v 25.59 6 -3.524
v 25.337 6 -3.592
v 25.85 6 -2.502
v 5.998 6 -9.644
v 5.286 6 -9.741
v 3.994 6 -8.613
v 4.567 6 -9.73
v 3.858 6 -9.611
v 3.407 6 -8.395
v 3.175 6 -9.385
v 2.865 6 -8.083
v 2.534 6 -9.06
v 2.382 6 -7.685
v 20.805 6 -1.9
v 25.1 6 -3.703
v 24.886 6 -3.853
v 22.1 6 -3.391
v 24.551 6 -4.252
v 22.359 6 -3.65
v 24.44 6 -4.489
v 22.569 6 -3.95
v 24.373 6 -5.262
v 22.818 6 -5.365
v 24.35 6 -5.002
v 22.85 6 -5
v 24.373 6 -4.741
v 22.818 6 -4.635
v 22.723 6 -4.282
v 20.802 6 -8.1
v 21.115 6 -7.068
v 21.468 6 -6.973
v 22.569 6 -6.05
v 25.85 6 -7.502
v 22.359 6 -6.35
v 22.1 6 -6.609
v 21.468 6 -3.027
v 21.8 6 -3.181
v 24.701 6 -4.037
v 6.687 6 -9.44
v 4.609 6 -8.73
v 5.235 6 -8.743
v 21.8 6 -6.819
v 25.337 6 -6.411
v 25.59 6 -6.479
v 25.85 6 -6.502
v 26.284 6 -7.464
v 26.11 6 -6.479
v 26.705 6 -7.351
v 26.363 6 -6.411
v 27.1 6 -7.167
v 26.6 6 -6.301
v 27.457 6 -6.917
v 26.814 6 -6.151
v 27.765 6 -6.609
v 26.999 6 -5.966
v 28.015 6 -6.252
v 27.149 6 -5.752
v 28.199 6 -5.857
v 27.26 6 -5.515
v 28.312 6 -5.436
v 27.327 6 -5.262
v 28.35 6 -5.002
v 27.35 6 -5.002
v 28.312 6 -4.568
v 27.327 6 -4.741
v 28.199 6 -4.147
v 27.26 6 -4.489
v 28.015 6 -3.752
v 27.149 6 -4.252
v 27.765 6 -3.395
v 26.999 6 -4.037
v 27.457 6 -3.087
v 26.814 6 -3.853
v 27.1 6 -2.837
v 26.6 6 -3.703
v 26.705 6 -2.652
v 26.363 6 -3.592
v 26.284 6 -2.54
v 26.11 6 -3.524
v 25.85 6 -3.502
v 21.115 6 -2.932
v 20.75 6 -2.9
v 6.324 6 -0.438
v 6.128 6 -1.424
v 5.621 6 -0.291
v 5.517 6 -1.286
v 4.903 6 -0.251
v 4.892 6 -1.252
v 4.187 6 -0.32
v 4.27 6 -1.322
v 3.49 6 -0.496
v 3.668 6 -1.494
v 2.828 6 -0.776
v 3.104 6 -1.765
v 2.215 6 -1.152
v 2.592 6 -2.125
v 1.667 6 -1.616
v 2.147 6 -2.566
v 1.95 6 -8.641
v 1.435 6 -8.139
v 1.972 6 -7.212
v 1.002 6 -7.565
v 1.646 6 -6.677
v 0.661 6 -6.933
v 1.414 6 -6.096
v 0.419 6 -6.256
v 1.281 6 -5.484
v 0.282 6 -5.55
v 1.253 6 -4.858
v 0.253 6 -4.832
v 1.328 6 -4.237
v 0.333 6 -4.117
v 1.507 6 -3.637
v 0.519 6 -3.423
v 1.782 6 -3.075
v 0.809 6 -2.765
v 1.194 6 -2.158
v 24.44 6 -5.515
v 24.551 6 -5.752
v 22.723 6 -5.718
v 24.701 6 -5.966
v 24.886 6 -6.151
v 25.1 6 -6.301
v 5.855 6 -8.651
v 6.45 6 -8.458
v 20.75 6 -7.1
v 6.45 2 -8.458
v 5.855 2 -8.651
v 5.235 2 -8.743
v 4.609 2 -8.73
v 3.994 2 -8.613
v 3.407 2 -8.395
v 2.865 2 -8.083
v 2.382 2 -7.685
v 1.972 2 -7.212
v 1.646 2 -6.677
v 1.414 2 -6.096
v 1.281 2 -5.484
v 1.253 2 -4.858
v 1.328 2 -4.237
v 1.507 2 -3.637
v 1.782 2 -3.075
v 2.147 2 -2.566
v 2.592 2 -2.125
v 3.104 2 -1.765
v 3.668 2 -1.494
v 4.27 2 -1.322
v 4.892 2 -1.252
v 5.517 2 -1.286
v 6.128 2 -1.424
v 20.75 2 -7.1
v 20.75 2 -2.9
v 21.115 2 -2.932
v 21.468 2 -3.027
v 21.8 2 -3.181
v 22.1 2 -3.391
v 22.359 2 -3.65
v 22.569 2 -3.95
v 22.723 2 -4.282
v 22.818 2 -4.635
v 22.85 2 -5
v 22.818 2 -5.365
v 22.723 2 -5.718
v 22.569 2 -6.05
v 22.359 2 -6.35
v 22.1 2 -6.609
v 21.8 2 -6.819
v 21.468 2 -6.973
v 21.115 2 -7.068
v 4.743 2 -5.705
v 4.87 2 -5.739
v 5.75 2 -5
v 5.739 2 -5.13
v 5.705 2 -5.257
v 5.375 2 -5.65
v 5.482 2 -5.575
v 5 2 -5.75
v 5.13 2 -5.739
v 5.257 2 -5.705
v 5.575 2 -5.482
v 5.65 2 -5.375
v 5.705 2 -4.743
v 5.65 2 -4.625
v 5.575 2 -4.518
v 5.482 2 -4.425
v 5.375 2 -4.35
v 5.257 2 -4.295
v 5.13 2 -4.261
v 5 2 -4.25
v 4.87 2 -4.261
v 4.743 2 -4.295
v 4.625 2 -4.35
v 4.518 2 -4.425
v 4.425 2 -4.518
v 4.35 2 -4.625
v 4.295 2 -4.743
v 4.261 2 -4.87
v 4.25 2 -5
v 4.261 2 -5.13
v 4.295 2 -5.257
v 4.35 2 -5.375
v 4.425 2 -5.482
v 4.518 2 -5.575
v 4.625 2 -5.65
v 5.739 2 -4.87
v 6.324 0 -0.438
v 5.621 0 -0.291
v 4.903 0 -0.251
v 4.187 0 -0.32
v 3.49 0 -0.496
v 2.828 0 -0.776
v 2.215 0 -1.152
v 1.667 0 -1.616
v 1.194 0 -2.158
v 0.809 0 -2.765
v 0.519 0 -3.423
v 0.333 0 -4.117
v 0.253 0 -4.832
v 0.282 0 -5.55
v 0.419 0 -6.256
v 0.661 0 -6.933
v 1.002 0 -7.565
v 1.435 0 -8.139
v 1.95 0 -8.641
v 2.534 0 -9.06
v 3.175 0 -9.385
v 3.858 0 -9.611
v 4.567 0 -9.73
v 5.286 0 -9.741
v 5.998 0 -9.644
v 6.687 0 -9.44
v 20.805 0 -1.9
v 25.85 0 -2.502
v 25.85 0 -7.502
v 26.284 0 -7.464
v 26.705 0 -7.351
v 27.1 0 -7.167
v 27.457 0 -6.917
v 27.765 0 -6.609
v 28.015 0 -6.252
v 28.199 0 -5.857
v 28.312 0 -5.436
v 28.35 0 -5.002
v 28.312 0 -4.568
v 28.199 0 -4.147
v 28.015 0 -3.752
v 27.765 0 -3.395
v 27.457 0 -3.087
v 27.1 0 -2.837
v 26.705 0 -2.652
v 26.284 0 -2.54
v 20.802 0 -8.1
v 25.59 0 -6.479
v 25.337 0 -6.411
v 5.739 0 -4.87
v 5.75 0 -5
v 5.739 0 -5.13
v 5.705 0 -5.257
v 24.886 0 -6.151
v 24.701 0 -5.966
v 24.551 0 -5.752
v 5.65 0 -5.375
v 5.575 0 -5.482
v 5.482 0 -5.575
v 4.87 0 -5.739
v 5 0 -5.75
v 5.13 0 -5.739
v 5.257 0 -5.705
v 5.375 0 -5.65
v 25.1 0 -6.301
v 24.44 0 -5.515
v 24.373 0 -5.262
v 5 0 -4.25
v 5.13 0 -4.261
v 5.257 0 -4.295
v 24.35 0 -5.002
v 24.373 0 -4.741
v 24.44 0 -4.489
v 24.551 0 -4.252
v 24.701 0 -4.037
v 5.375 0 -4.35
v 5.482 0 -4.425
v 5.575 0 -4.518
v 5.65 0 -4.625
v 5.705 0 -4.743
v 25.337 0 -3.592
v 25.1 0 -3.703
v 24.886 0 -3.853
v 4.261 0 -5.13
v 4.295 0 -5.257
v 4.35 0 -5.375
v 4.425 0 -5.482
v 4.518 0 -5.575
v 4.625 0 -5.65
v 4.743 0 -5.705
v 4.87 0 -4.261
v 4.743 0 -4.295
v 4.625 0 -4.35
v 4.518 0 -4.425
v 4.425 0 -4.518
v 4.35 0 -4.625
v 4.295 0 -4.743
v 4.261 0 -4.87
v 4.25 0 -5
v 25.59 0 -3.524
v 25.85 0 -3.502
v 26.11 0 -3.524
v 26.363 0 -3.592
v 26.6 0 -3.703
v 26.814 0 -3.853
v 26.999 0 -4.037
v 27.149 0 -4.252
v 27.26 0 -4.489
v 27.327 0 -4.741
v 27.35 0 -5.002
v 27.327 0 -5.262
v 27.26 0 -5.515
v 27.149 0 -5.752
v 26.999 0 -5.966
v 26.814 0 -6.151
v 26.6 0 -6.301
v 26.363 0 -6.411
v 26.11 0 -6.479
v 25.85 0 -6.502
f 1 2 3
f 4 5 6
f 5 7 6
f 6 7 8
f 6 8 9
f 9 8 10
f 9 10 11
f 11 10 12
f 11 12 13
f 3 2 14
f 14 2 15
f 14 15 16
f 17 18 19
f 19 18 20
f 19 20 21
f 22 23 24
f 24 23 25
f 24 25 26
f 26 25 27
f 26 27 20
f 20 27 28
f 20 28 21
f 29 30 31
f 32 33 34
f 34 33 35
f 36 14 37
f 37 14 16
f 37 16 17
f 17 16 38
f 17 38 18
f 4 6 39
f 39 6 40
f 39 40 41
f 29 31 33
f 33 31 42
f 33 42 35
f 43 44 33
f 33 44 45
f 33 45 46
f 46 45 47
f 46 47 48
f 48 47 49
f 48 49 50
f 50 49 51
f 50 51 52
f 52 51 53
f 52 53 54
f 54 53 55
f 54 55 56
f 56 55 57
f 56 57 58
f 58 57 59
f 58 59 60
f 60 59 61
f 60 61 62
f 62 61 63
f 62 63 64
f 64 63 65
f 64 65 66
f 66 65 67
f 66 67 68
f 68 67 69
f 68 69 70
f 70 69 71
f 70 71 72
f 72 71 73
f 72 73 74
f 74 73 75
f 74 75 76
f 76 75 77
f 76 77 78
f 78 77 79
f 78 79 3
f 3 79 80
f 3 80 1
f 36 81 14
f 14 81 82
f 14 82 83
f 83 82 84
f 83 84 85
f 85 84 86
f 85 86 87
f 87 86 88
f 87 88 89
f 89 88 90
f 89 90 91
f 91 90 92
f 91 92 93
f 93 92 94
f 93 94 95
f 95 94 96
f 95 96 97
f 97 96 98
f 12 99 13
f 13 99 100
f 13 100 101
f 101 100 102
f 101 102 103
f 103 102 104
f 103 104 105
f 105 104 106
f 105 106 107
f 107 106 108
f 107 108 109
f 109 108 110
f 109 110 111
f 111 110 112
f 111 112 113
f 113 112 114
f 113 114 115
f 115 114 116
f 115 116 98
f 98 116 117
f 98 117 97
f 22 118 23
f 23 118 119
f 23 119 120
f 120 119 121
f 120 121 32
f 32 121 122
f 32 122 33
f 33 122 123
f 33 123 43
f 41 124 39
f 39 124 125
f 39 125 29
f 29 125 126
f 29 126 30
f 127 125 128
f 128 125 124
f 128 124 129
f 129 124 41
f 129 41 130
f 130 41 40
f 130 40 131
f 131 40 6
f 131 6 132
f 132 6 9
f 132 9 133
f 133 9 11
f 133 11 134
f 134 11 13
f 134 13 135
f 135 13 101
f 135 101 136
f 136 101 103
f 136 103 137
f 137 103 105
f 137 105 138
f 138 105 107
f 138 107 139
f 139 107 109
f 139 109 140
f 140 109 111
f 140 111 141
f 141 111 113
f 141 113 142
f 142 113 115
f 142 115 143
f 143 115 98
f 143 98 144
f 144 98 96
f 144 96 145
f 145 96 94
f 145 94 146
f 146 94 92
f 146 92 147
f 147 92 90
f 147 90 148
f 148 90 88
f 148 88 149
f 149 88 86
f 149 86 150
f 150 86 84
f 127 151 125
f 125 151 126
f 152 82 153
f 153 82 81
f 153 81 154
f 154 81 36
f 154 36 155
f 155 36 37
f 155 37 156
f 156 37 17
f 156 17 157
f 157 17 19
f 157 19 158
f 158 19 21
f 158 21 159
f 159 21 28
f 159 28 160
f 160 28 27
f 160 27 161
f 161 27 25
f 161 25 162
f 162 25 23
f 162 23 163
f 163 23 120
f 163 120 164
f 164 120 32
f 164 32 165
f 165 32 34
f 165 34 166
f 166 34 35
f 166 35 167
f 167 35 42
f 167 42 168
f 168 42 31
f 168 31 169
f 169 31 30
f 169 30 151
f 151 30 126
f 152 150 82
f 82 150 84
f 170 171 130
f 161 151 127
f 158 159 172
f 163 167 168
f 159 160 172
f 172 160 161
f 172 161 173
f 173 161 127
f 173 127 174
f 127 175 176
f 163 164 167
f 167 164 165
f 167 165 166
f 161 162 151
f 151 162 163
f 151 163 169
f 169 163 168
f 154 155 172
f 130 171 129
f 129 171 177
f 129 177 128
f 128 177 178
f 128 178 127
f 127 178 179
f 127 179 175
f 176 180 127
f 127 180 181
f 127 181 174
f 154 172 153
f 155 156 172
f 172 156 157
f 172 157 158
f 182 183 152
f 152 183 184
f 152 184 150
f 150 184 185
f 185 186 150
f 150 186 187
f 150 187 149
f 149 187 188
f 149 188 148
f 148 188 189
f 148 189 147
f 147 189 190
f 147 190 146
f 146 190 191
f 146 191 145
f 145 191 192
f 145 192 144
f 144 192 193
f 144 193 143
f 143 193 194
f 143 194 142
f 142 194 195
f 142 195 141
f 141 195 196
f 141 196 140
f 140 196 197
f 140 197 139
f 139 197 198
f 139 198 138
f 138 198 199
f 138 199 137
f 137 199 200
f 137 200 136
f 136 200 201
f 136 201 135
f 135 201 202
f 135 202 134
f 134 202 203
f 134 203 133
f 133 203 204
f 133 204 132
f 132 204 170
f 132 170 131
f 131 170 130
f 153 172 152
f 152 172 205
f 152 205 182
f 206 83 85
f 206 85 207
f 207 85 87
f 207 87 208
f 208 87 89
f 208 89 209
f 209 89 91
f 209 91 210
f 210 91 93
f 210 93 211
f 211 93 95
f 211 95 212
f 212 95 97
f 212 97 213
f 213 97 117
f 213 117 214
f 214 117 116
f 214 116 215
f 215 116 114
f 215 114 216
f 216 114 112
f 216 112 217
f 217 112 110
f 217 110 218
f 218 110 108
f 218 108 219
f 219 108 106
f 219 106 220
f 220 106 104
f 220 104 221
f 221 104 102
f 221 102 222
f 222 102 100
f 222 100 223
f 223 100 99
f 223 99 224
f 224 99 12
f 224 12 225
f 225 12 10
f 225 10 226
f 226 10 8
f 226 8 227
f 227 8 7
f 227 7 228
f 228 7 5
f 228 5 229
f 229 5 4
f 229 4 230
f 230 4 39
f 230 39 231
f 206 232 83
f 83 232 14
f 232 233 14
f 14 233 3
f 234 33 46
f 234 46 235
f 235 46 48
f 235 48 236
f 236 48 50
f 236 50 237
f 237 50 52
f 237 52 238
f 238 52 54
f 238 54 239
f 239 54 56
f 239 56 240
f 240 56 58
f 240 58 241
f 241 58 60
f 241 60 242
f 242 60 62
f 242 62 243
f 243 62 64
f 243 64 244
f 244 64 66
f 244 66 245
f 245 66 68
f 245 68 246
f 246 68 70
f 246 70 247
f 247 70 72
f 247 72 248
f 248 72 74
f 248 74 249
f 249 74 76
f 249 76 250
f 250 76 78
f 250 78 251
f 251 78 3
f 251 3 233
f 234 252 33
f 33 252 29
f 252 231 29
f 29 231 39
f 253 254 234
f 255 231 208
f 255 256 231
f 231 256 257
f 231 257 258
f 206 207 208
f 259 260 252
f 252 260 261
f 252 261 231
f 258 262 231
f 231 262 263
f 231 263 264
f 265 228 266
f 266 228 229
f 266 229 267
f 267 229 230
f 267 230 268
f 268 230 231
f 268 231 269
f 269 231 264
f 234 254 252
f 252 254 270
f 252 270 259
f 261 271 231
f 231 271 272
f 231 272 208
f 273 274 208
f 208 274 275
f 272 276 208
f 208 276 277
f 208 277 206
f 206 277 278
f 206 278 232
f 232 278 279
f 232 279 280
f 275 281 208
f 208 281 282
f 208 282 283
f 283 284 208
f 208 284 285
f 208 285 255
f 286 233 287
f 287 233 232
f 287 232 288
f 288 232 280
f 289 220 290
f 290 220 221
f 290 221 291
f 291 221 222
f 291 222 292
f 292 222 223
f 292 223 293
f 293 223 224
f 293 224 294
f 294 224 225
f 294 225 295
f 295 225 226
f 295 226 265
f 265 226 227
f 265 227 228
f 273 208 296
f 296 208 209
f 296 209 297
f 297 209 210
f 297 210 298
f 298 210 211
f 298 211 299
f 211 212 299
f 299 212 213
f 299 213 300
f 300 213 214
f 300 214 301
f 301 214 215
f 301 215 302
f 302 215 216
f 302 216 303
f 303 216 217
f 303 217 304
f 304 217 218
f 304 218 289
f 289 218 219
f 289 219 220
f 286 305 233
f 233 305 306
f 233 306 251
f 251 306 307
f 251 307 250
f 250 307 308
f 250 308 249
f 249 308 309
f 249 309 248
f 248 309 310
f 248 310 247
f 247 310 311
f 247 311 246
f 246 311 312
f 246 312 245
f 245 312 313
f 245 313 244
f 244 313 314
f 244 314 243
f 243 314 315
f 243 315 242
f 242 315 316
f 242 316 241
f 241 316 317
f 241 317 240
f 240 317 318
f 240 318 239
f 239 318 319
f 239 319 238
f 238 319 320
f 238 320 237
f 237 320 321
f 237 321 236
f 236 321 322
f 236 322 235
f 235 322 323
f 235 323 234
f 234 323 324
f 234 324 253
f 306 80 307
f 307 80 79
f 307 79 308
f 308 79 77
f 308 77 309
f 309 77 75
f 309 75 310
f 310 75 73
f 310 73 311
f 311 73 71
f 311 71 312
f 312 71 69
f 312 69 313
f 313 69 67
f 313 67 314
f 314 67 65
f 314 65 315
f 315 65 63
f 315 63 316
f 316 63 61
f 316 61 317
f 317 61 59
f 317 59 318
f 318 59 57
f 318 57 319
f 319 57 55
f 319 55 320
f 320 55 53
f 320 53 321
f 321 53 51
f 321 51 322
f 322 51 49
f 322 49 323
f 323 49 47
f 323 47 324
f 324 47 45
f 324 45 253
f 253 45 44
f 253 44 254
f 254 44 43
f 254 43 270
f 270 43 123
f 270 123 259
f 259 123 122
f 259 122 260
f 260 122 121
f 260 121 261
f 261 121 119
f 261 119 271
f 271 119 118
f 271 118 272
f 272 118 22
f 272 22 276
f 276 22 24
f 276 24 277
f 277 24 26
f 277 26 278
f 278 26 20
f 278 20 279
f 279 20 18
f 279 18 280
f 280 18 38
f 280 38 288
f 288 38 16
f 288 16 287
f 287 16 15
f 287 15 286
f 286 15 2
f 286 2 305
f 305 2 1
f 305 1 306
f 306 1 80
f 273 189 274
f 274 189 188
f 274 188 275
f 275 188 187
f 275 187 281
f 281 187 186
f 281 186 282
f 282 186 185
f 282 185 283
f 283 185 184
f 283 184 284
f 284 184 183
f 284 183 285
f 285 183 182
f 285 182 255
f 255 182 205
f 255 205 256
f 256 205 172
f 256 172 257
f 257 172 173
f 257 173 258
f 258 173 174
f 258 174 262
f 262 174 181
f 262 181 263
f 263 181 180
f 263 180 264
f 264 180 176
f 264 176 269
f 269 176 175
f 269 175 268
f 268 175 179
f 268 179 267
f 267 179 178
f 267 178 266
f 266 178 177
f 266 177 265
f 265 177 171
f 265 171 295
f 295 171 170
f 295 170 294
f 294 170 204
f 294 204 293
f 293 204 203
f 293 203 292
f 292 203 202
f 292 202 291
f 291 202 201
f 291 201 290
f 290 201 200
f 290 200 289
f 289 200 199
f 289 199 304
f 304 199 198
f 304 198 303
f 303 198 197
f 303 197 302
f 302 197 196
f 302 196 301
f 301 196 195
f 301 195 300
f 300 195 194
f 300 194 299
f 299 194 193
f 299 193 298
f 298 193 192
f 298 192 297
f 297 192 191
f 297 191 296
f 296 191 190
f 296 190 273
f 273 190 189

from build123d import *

# Parameters (mm, degrees)
SKETCH2_W           = 30
SKETCH2_H           = 10
BOSS_EXTRUDE3_DEPTH = 6
CUT_EXTRUDE2_DEPTH  = 4
SKETCH5_W           = 30
SKETCH5_H           = 10
CUT_EXTRUDE3_DEPTH  = 33.186953879
SKETCH6_R           = 1.5
CUT_EXTRUDE4_DEPTH  = 31.574253478
SKETCH7_R           = 0.75
CUT_EXTRUDE5_DEPTH  = 31.245412474


with BuildPart() as part:
    # Sketch2 → Boss-Extrude3 (new body)
    with BuildSketch(Plane(origin=(0, 0, 0), x_dir=(1, 0, 0), z_dir=(0, 1, 0))):
        with Locations((15, 5)):
            Rectangle(SKETCH2_W, SKETCH2_H)
    extrude(amount=BOSS_EXTRUDE3_DEPTH)

    # Sketch3 → Cut-Extrude2 (cut)
    with BuildSketch(Plane(origin=(0, 6, 0), x_dir=(1, 0, 0), z_dir=(0, 1, 0))):
        with BuildLine():
            Line((6.127698587, 1.42357778), (20.75, 2.9))
            ThreePointArc((20.75, 2.9), (22.85, 5), (20.75, 7.1))
            Line((20.75, 7.1), (6.45010187, 8.45828058))
            ThreePointArc((6.45010187, 8.45828058), (1.253932106, 5.171683811), (6.127698587, 1.42357778))
        make_face()
    extrude(amount=-CUT_EXTRUDE2_DEPTH, mode=Mode.SUBTRACT)

    # Sketch5 → Cut-Extrude3 (cut, through all)
    with BuildSketch(Plane(origin=(0, 6, 0), x_dir=(1, 0, 0), z_dir=(0, 1, 0))):
        with Locations((15, 5)):
            Rectangle(SKETCH5_W, SKETCH5_H)
        with BuildLine():
            Line((20.801973147, 8.099564291), (25.849999572, 7.501628842))
            ThreePointArc((25.849999572, 7.501628842), (28.349999572, 5.001628842), (25.849999572, 2.501628842))
            Line((25.849999572, 2.501628842), (20.805230344, 1.900492038))
            Line((20.805230344, 1.900492038), (6.324314639, 0.438345614))
            ThreePointArc((6.324314639, 0.438345614), (0.25385432, 5.191314364), (6.687176675, 9.440262928))
            Line((6.687176675, 9.440262928), (20.801973147, 8.099564291))
        make_face(mode=Mode.SUBTRACT)
    extrude(amount=-CUT_EXTRUDE3_DEPTH, mode=Mode.SUBTRACT)

    # Sketch6 → Cut-Extrude4 (cut, through all)
    with BuildSketch(Plane(origin=(0, 6, 0), x_dir=(1, 0, 0), z_dir=(0, 1, 0))):
        with Locations(Location((25.849999572, 5.001628842, 0), (0, 0, 270))):
            Circle(SKETCH6_R)
    extrude(amount=-CUT_EXTRUDE4_DEPTH, mode=Mode.SUBTRACT)

    # Sketch7 → Cut-Extrude5 (cut, through all)
    with BuildSketch(Plane(origin=(0, 2, 0), x_dir=(1, 0, 0), z_dir=(0, 1, 0))):
        with Locations(Location((5, 5, 0), (0, 0, 270))):
            Circle(SKETCH7_R)
    extrude(amount=-CUT_EXTRUDE5_DEPTH, mode=Mode.SUBTRACT)


solid = part.part
